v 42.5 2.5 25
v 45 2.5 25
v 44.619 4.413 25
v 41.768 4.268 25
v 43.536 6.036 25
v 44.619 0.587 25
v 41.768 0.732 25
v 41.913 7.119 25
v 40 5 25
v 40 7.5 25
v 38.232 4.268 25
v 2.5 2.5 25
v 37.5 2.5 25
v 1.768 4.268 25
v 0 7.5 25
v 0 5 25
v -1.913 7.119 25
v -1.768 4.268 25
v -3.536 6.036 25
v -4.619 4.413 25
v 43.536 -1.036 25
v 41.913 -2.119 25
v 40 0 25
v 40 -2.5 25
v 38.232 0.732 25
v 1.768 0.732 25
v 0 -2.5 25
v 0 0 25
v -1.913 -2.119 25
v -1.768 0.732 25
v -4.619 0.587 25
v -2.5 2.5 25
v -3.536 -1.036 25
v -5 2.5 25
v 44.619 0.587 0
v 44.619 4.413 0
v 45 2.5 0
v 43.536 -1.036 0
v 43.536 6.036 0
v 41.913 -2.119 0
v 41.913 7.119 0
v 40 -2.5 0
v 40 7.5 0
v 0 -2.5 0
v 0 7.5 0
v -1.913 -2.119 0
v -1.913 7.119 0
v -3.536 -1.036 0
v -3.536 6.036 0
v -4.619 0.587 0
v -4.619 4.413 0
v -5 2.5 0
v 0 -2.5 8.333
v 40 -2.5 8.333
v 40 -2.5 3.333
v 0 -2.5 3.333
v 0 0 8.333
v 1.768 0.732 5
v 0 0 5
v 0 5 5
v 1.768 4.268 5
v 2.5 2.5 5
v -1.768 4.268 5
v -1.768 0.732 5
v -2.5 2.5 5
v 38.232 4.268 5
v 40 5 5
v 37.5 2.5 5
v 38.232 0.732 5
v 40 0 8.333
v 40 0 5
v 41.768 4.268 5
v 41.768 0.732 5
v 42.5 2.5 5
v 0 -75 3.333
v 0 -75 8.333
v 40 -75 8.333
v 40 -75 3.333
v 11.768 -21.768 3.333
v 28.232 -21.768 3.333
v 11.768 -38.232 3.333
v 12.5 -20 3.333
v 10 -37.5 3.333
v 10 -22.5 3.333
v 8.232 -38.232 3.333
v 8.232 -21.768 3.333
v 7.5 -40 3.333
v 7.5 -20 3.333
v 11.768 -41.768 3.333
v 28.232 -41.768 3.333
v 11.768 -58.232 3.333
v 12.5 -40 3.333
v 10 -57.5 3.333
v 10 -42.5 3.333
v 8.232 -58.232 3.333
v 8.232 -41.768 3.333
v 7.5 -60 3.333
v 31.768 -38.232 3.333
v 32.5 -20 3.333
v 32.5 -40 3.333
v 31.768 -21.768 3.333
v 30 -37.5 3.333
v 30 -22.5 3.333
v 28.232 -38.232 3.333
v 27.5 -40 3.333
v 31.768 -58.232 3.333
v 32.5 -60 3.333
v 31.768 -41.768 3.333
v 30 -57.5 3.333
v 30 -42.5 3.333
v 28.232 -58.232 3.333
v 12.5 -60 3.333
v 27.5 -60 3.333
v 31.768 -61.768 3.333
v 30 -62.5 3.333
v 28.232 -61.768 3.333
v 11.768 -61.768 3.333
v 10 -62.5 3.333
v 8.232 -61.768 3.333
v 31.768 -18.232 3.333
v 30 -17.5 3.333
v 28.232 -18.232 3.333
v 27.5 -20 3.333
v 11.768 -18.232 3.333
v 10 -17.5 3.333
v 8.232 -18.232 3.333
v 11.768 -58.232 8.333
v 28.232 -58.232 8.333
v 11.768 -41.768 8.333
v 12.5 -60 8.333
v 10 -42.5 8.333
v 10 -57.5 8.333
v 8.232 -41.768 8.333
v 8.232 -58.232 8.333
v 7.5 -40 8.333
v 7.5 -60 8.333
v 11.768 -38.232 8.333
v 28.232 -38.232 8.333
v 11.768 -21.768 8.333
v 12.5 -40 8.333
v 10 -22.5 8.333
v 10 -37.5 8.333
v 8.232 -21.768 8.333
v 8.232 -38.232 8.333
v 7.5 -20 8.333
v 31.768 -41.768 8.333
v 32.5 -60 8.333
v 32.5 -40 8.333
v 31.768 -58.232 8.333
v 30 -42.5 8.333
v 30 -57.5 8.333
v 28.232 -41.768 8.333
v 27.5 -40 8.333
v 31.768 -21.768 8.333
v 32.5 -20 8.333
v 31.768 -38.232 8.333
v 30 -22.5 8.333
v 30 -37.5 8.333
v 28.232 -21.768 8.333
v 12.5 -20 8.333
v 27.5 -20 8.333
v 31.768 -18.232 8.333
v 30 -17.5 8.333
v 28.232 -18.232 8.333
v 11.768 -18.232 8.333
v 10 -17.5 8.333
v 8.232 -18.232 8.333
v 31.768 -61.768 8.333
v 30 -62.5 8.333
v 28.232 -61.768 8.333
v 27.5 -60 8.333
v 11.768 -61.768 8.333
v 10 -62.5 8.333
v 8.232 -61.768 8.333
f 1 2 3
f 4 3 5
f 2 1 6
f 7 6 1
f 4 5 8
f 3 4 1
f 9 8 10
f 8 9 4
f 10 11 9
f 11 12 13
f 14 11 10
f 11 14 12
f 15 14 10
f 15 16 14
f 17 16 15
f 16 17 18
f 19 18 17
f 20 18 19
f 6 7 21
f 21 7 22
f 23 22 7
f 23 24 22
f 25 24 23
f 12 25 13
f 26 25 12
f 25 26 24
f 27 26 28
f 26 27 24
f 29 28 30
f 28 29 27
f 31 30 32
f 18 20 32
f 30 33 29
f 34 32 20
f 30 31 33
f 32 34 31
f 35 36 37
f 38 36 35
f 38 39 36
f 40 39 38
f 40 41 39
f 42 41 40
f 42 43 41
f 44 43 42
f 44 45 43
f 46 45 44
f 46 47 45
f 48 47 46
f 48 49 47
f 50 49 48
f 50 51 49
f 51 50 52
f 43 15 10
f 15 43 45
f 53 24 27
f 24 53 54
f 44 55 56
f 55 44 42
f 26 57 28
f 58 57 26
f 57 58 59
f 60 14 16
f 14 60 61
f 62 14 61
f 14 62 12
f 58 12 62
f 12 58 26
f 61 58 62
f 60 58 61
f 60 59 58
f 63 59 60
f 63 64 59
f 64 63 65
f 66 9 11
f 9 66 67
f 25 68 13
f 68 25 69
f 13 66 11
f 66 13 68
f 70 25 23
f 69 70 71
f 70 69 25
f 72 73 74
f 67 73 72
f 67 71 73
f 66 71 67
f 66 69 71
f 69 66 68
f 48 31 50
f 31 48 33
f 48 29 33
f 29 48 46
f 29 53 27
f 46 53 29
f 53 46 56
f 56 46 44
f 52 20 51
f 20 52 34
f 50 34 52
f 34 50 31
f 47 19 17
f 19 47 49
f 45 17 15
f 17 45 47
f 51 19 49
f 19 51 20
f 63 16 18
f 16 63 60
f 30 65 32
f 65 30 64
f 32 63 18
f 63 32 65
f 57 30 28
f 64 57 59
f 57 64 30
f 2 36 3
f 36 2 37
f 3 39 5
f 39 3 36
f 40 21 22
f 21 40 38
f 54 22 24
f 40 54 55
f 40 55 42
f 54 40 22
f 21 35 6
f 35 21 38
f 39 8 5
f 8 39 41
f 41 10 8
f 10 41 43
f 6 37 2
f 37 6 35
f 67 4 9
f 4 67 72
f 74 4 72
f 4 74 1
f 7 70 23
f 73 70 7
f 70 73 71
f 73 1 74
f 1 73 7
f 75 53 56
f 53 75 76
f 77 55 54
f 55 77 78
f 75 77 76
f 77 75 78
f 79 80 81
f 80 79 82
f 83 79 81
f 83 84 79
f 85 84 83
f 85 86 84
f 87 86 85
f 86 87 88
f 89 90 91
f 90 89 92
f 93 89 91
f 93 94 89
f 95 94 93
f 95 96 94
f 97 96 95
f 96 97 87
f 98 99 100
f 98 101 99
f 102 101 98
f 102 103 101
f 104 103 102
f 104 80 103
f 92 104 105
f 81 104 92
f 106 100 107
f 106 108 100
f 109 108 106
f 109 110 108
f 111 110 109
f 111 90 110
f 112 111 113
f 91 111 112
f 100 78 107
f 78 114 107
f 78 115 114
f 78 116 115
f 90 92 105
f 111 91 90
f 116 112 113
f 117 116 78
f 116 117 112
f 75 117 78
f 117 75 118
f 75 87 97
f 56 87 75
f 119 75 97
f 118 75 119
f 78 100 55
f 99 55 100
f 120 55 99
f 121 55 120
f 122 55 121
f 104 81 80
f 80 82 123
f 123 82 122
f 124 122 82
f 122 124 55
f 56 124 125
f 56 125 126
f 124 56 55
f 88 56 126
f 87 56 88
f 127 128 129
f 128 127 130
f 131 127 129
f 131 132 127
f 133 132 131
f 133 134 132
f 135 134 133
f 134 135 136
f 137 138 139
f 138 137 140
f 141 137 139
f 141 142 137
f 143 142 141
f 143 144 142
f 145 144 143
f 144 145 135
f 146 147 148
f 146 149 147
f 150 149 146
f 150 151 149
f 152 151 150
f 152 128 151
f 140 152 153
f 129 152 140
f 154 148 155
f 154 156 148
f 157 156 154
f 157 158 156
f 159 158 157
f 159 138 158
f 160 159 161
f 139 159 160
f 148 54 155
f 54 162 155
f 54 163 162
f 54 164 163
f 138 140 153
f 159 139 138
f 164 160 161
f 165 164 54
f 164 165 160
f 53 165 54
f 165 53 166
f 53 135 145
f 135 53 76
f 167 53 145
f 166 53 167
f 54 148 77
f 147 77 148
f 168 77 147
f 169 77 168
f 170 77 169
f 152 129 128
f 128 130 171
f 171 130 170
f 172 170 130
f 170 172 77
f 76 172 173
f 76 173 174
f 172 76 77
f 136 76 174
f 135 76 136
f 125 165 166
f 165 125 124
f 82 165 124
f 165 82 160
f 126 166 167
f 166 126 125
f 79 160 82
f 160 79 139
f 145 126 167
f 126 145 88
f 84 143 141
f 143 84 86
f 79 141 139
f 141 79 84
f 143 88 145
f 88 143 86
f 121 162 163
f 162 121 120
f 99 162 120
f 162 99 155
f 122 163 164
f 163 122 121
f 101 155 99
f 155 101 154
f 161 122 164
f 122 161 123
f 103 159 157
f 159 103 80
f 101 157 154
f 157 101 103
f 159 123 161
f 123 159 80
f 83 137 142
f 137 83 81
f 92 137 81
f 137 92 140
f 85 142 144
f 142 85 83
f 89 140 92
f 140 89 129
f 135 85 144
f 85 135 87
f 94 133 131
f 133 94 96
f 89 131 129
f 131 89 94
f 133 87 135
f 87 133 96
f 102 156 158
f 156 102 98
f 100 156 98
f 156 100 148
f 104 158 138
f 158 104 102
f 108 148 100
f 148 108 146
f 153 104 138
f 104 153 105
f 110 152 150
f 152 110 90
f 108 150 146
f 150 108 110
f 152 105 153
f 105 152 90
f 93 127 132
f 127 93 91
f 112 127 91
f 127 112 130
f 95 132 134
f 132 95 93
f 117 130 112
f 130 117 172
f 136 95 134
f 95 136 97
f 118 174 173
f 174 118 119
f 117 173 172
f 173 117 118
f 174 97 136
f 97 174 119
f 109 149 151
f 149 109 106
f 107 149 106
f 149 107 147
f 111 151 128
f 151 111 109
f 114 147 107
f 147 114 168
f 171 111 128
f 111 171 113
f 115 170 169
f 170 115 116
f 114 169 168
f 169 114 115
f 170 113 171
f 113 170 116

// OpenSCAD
l=40;
b=10;
h=25;


d=b;
r=d/2;

module body(){
    translate([0,-r/2,0]) cube([l,b,h]);
}

module _left_stand(){
    difference(){
        translate([0,r/2,0]) cylinder(r=r,h=h);
        translate([0,r/2,5]) cylinder(r=r/2,h=h*2);
    }
}

module left_stand(){
        translate([0,r/2,0]) cylinder(r=r,h=h);
}

module _right_stand(){
    difference(){
        translate([l,r/2,0]) cylinder(r=r,h=h);
        translate([l,r/2,5]) cylinder(r=r/2,h=h*2);
    }
}

module right_stand(){
        translate([l,r/2,0]) cylinder(r=r,h=h);
}

module make_stand(){
    difference(){
        body();
        translate([0,r/2,5]) cylinder(r=r/2,h=h*2);
        translate([l,r/2,5]) cylinder(r=r/2,h=h*2);
    }
    difference(){
        left_stand();
        translate([0,r/2,5]) cylinder(r=r/2,h=h*2);
    }
    difference(){
        right_stand();
        translate([l,r/2,5]) cylinder(r=r/2,h=h*2);
    }
    difference(){
        rotate([90,0,0]) {
            translate([0,b/3,0]) cube([l,b/2,h*3]);
        }
        translate([l/4,-b*2,0]) cylinder(r=r/2,h=h);
        translate([l-l/4,-b*2,0]) cylinder(r=r/2,h=h);
        
        translate([l/4,-b*4,0]) cylinder(r=r/2,h=h);
        translate([l-l/4,-b*4,0]) cylinder(r=r/2,h=h);
        
        translate([l/4,-b*6,0]) cylinder(r=r/2,h=h);
        translate([l-l/4,-b*6,0]) cylinder(r=r/2,h=h);
    }
}

make_stand();

    
    
